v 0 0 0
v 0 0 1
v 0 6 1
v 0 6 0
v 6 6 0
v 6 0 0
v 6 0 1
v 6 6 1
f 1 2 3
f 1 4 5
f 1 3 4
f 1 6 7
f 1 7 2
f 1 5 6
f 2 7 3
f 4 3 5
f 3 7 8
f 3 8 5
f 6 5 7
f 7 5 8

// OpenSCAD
/* Warning, this is a very basic generator with a lot of approximation 
input data : [VQFN, SGB, 6x6x1mm, 36, , B, C04-21409B]
generated by com.zoubworld.electronics.cad.model3d.Basic
Date : Sun Feb 15 10:50:49 CET 2026
*/

//body
color("black")
translate([0,0,0])
cube([6.0,6.0,1.0], center=false);
